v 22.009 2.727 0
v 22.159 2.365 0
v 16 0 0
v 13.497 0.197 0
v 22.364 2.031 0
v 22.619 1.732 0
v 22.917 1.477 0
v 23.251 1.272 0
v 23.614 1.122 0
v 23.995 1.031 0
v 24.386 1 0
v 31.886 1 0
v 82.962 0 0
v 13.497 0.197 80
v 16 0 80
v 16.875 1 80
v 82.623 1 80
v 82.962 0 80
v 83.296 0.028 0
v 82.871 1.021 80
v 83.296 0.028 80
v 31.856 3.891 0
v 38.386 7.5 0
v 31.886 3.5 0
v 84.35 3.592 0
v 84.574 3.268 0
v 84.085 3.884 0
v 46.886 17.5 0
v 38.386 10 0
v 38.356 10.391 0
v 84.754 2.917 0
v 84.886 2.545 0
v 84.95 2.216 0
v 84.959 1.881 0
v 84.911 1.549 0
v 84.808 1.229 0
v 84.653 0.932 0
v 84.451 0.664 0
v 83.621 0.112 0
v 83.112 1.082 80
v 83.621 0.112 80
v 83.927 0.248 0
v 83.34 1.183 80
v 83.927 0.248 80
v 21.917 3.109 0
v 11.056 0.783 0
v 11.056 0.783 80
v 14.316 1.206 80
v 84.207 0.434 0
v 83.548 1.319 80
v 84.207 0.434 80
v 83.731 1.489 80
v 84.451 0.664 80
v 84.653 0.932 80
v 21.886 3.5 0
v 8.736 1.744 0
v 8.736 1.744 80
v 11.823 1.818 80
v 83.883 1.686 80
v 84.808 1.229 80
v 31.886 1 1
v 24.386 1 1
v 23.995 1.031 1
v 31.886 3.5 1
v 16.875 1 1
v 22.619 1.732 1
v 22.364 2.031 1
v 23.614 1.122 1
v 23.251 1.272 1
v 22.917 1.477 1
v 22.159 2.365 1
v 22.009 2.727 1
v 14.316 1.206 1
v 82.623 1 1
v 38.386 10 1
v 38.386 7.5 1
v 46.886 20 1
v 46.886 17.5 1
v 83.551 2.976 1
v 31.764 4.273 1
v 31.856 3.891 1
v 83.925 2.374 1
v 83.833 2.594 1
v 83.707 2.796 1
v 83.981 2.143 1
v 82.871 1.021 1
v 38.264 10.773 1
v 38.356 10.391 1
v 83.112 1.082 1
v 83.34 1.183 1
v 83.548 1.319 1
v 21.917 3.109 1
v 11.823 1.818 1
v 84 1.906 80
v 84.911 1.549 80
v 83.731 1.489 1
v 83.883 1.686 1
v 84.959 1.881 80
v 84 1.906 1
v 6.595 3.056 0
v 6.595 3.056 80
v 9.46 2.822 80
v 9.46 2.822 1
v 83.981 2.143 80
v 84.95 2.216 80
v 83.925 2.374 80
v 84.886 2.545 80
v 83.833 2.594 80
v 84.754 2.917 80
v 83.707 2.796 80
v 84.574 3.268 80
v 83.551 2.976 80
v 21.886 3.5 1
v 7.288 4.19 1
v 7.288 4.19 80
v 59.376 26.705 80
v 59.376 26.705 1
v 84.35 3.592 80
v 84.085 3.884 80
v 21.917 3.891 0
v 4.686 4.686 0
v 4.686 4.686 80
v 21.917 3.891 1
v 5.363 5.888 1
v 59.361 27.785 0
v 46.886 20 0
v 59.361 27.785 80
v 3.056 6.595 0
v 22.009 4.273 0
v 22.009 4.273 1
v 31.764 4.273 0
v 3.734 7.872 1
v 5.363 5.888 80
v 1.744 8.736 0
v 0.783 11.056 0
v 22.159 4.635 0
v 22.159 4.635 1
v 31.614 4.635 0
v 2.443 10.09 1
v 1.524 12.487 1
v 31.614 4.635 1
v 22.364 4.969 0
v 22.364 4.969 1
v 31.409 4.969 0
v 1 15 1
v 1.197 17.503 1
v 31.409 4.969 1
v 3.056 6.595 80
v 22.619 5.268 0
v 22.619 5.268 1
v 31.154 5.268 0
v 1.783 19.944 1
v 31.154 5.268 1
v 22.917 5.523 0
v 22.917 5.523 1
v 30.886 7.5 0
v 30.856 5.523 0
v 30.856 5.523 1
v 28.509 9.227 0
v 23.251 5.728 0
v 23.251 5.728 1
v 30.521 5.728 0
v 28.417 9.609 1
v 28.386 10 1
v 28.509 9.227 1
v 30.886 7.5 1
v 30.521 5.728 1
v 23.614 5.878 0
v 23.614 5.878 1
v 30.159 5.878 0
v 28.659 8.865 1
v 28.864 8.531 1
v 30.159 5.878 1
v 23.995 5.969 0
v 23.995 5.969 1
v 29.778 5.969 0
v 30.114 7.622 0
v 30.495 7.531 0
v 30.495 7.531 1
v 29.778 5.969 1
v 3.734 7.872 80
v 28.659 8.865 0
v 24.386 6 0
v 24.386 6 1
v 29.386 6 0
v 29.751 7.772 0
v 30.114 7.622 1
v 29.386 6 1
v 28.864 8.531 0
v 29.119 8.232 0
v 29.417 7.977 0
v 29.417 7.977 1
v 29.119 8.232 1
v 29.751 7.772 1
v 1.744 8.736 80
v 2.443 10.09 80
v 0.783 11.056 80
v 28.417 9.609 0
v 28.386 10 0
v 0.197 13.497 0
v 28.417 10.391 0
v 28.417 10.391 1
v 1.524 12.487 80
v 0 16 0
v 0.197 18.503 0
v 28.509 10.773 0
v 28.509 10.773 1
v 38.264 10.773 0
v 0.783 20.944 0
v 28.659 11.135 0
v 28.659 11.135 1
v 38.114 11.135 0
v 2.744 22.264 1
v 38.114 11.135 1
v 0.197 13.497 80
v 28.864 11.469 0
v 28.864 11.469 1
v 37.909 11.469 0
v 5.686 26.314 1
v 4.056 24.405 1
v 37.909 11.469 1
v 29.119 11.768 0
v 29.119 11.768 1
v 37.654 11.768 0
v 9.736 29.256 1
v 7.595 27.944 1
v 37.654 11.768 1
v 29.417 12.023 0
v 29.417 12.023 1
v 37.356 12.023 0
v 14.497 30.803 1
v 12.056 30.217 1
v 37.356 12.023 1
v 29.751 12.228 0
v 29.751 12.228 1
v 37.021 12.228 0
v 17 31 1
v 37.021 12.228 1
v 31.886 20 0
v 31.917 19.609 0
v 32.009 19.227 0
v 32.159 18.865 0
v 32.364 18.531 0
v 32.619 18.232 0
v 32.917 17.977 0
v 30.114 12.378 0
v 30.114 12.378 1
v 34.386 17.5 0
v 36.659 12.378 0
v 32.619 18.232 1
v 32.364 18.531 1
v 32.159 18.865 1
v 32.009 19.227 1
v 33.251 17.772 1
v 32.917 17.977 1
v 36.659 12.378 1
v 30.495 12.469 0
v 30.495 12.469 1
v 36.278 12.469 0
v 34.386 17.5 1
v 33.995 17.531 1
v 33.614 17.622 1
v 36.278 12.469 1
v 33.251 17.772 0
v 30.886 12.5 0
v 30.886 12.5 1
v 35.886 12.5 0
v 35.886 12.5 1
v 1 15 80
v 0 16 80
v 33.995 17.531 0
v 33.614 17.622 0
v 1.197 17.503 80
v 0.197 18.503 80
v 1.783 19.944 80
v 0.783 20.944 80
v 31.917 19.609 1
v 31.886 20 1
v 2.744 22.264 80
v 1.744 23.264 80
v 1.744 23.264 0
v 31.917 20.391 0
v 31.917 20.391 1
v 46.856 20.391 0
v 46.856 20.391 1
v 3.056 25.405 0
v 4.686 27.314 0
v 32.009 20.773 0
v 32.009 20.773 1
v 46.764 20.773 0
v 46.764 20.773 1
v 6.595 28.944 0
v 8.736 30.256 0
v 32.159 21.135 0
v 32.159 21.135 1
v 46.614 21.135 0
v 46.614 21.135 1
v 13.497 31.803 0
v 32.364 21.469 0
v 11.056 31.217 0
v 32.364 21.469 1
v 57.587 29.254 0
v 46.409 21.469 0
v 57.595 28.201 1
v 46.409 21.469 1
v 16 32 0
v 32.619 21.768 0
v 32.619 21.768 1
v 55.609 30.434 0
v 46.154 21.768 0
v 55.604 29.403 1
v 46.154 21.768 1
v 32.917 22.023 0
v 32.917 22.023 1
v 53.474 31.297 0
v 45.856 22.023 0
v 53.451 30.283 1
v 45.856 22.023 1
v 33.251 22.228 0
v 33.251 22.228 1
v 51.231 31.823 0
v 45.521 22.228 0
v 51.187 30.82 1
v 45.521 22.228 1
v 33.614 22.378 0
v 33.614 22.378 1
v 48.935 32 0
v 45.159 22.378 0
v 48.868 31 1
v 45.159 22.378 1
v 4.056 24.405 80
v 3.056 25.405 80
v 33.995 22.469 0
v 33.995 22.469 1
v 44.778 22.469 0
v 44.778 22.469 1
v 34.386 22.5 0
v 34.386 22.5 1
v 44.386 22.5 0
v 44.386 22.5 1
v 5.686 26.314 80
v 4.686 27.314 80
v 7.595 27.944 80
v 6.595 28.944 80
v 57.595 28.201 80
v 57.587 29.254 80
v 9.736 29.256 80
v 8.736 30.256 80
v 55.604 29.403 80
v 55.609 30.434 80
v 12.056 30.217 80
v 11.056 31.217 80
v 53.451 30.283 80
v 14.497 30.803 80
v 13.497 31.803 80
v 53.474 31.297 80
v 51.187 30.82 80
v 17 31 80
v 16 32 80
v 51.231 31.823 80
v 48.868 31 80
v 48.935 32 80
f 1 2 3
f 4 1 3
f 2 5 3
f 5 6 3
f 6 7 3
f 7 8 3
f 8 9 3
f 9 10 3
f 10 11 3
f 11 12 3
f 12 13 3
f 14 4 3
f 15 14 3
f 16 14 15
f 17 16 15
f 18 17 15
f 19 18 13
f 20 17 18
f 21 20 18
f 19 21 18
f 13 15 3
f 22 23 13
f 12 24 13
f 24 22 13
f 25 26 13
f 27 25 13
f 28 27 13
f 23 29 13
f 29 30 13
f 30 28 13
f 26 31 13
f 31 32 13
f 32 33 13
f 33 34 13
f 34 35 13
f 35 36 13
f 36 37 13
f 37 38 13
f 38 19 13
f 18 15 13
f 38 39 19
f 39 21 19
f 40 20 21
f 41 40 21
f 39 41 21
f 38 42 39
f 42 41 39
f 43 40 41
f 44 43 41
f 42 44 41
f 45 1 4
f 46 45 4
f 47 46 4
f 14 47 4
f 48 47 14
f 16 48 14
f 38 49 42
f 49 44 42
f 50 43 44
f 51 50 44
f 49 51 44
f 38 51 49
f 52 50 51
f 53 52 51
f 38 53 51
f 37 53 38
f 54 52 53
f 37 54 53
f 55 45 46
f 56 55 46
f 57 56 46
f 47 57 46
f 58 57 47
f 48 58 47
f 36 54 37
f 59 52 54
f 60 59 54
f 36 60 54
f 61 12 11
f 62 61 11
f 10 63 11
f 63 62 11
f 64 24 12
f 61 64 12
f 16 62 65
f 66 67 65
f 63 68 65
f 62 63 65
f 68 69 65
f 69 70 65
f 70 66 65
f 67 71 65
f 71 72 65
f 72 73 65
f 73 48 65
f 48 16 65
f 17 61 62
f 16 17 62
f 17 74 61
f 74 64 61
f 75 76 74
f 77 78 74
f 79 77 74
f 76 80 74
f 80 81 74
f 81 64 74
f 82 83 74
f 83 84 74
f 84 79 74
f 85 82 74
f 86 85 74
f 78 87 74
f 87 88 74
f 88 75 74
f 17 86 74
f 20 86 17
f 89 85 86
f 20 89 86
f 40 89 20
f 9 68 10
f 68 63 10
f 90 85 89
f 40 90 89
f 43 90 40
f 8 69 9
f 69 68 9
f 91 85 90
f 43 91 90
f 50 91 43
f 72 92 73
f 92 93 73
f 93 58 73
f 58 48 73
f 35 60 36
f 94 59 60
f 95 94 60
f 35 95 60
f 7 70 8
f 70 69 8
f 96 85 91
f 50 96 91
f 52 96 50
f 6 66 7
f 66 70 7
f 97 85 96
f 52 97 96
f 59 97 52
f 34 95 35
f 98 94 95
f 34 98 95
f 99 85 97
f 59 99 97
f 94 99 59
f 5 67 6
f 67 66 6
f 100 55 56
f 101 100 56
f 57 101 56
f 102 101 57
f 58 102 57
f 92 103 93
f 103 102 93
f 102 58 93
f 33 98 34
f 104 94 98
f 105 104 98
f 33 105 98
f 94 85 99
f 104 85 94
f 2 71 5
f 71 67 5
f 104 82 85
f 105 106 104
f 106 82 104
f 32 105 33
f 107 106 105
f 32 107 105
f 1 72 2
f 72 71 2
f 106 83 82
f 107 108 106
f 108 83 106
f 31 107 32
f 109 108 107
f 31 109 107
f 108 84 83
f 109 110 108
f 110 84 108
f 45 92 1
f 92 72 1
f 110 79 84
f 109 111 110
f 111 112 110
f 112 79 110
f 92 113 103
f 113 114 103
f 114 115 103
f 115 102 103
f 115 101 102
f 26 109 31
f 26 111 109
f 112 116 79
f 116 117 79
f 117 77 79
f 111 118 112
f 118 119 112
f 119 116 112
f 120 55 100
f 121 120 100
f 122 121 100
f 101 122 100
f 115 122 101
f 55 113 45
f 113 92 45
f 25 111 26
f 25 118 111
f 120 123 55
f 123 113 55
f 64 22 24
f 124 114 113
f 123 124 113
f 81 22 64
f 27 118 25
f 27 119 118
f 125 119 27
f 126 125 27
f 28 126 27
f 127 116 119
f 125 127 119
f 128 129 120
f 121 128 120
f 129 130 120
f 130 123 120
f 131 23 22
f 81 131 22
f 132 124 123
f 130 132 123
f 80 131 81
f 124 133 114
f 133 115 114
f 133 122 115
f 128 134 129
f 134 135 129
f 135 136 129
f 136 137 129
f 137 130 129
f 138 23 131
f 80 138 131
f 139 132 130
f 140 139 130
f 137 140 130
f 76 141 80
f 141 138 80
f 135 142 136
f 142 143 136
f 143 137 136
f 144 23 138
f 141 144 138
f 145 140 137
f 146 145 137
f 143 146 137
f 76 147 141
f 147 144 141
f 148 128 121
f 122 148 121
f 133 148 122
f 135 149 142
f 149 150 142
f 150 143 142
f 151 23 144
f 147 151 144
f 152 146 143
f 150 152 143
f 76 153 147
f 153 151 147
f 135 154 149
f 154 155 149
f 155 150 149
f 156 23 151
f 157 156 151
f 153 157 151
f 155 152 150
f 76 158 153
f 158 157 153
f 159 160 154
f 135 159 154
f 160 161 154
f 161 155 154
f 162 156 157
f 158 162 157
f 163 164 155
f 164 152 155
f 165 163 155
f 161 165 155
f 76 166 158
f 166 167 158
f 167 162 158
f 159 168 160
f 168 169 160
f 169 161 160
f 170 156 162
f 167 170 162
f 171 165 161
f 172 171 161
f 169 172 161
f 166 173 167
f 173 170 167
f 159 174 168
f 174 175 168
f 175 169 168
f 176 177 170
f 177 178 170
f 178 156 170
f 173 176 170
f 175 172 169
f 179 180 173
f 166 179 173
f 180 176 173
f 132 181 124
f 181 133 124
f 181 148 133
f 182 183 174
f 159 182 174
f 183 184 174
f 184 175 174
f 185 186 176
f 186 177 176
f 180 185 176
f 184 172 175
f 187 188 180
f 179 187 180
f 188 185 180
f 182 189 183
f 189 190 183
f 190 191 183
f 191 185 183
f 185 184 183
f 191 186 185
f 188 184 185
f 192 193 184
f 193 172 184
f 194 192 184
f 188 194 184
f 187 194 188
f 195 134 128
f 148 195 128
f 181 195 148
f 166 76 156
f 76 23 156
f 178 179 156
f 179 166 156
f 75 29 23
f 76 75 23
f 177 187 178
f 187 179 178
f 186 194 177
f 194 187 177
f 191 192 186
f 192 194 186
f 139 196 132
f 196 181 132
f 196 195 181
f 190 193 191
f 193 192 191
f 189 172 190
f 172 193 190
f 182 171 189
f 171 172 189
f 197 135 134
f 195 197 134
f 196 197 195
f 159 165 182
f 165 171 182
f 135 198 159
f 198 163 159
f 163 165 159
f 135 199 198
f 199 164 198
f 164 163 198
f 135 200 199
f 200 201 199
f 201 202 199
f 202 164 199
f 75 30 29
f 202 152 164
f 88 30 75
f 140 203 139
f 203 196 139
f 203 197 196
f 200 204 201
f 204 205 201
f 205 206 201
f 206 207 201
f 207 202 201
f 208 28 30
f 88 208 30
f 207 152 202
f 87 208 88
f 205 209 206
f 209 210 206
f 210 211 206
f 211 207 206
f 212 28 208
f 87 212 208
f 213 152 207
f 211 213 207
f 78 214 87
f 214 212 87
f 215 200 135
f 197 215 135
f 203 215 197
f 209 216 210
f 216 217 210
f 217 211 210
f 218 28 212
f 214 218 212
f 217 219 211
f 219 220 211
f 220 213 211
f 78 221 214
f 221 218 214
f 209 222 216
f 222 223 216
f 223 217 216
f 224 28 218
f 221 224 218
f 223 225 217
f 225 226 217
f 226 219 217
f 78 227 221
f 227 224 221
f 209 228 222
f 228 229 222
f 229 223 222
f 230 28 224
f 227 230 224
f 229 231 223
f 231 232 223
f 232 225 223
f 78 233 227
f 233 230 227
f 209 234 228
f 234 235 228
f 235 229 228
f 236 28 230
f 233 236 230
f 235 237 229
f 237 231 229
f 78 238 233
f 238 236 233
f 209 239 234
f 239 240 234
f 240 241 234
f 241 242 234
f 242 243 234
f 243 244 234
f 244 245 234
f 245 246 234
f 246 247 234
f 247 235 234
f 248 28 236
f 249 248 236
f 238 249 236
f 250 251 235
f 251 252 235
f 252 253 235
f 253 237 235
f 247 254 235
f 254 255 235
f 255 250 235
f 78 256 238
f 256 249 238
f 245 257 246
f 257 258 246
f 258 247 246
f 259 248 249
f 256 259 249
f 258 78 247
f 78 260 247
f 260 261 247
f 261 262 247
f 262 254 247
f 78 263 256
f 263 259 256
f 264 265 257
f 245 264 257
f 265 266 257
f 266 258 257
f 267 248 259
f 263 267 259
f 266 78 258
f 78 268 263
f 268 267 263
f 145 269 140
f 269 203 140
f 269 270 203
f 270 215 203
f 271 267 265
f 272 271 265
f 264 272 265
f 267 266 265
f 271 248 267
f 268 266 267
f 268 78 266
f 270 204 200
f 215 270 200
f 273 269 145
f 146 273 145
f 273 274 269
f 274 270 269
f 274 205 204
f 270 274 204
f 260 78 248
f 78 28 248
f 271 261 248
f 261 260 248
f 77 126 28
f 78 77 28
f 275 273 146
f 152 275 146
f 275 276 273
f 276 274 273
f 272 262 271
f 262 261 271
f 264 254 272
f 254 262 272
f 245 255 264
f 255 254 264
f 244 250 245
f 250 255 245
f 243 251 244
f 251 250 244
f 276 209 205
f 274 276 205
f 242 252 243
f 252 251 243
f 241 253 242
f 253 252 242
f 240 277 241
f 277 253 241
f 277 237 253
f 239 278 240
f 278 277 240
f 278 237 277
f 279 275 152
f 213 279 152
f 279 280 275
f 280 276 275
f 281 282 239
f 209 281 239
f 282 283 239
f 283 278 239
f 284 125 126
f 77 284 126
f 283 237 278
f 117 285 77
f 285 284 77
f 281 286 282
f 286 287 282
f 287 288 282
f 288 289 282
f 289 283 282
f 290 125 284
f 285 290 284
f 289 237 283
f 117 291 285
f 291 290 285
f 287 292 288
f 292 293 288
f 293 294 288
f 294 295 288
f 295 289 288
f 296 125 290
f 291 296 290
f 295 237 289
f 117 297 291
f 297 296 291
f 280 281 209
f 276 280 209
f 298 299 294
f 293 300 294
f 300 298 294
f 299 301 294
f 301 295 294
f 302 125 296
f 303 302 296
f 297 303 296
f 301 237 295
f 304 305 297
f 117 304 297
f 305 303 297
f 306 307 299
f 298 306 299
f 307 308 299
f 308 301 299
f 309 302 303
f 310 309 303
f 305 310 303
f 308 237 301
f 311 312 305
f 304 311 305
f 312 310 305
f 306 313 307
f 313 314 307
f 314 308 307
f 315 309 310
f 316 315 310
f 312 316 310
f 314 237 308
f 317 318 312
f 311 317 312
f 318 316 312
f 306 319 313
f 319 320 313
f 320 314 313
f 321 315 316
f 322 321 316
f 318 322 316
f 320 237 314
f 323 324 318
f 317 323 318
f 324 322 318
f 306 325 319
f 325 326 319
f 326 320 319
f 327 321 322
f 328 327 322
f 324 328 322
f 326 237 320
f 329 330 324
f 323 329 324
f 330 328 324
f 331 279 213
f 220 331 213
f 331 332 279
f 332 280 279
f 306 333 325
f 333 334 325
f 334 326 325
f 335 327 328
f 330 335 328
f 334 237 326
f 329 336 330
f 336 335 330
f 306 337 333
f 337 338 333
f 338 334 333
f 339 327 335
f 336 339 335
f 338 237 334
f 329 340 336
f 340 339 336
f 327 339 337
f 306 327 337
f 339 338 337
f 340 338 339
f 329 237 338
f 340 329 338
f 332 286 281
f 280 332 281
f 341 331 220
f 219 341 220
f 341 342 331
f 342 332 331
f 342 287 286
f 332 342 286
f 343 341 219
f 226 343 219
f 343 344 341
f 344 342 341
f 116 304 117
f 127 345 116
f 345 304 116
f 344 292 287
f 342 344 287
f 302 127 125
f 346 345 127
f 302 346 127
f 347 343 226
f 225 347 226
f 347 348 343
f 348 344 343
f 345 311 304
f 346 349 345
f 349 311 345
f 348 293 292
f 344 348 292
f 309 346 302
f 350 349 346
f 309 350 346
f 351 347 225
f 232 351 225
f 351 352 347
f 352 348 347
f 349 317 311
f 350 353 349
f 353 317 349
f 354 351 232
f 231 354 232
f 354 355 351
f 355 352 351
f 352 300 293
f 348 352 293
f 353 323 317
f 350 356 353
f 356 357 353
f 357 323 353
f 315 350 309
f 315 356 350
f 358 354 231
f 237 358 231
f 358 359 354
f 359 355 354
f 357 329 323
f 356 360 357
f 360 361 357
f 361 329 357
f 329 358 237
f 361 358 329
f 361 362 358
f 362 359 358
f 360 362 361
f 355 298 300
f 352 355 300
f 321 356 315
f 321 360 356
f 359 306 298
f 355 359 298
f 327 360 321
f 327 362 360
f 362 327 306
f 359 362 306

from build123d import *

# Parameters (mm, degrees)
SKETCH1_W               = 85
SKETCH1_H               = 32
BOSS_EXTRUDE1_DEPTH     = 80
CUT_EXTRUDE7_DEPTH      = 122.033053337
CUT_EXTRUDE7_DEPTH_BACK = 80
CUT_EXTRUDE8_DEPTH      = 79
FILLET11_R              = 16
FILLET12_R              = 16
FILLET13_R              = 16
FILLET14_R              = 16
FILLET15_R              = 15
FILLET16_R              = 15
FILLET17_R              = 1.5
FILLET18_R              = 1.5
FILLET21_R              = 3
FILLET22_R              = 2
SKETCH18_W              = 15
SKETCH18_H              = 5
CUT_EXTRUDE14_DEPTH     = 79
SKETCH17_W              = 10
SKETCH17_H              = 5
CUT_EXTRUDE15_DEPTH     = 79
SKETCH16_W              = 10
SKETCH16_H              = 5
CUT_EXTRUDE16_DEPTH     = 79
FILLET29_R              = 2.5
FILLET30_R              = 2.5
FILLET31_R              = 2.5
FILLET32_R              = 2.5
FILLET33_R              = 2.5
FILLET34_R              = 2.5
FILLET35_R              = 2.5
FILLET36_R              = 2.5
FILLET37_R              = 2.5


# Some blends are built 0.0001 mm under size
with BuildPart() as part:
    # Sketch1 → Boss-Extrude1 (new body)
    with BuildSketch(Plane.XY):
        with Locations((42.5, 16)):
            Rectangle(SKETCH1_W, SKETCH1_H)
    extrude(amount=BOSS_EXTRUDE1_DEPTH)

    # Sketch3 → Cut-Extrude7 (cut, two sides: drawn at the far end of the back side and taken through both)
    with BuildSketch(Plane.XY.offset(80).offset(-CUT_EXTRUDE7_DEPTH_BACK)):
        Polygon((221.335887988, -128.791358388), (85, 3), (55, 32), (-81.335887988, 163.791358388), (182.246828788, 436.463134363), (484.918604763, 143.880417587), align=None)
    extrude(amount=CUT_EXTRUDE7_DEPTH + CUT_EXTRUDE7_DEPTH_BACK, mode=Mode.SUBTRACT)

    # Sketch6 → Cut-Extrude8 (cut)
    with BuildSketch(Plane.XY.offset(80)):
        Polygon((1, 31), (1, 1), (84, 1), (84, 2.535105728), (55, 31), align=None)
    extrude(amount=-CUT_EXTRUDE8_DEPTH, mode=Mode.SUBTRACT)

    # Fillet11
    fillet11_edges = [part.edges().sort_by_distance(p)[0] for p in [
        (1, 31, 40.5),
    ]]
    fillet(fillet11_edges, radius=FILLET11_R)

    # Fillet12
    # the kernel refuses this fillet: 16 mm, written as the material it adds along each edge
    with BuildSketch(Plane(origin=(1, 1, 80), x_dir=(0, 1, 0), z_dir=(0, 0, -1))) as fillet12_piece_1:
        with BuildLine():
            CenterArc((16, 15.874507866), FILLET12_R, 180, 82.819244219)
            Line((0, 15.874507866), (-0.32, 15.874507866))
            Line((-0.32, 15.874507866), (-0.32, 0))
            Line((-0.32, 0), (0, -0.32))
            ThreePointArc((0, -0.32), (7, -0.32), (13.96, -0.317490157))
            Line((13.96, -0.317490157), (14, 0))
        make_face()
    extrude(amount=79)

    # Fillet13
    fillet13_edges = [part.edges().sort_by_distance(p)[0] for p in [
        (0, 32, 40),
    ]]
    fillet(fillet13_edges, radius=FILLET13_R)

    # Fillet14
    fillet14_edges = [part.edges().sort_by_distance(p)[0] for p in [
        (0, 0, 40),
    ]]
    fillet(fillet14_edges, radius=FILLET14_R - 0.0001)  # a hair under: the kernel refuses the full size

    # Fillet15
    fillet15_edges = [part.edges().sort_by_distance(p)[0] for p in [
        (55, 31, 40.5),
    ]]
    fillet(fillet15_edges, radius=FILLET15_R)

    # Fillet16
    fillet16_edges = [part.edges().sort_by_distance(p)[0] for p in [
        (55, 32, 40),
    ]]
    fillet(fillet16_edges, radius=FILLET16_R)

    # Fillet17
    fillet17_edges = [part.edges().sort_by_distance(p)[0] for p in [
        (84, 2.535105728, 40.5),
    ]]
    fillet(fillet17_edges, radius=FILLET17_R)

    # Fillet18
    # the kernel refuses this fillet: 1.5 mm, written as the material it adds along each edge
    with BuildSketch(Plane(origin=(84, 1, 80), x_dir=(0, 1, 0), z_dir=(0, 0, -1))) as fillet18_piece_1:
        with BuildLine():
            CenterArc((1.5, -1.377197843), FILLET18_R, 113.345512124, 66.654487876)
            Line((0, -1.377197843), (-0.03, -1.377197843))
            Line((-0.03, -1.377197843), (-0.03, 0))
            Line((-0.03, 0), (0, 0.03))
            ThreePointArc((0, 0.03), (0.4527938, 0.03), (0.893699352, 0.027543957))
            Line((0.893699352, 0.027543957), (0.9055876, 0))
        make_face()
    extrude(amount=79)

    # Fillet21
    fillet21_edges = [part.edges().sort_by_distance(p)[0] for p in [
        (85, 3, 40),
    ]]
    fillet(fillet21_edges, radius=FILLET21_R)

    # Fillet22
    fillet22_edges = [part.edges().sort_by_distance(p)[0] for p in [
        (85, 0, 40),
    ]]
    fillet(fillet22_edges, radius=FILLET22_R)

    # Sketch18 → Cut-Extrude14 (cut)
    with BuildSketch(Plane(origin=(0, 0, 0), x_dir=(-1, 0, 0), z_dir=(0, 0, -1))):
        with Locations((-39.386442529, 20)):
            Rectangle(SKETCH18_W, SKETCH18_H)
    extrude(amount=-CUT_EXTRUDE14_DEPTH, mode=Mode.SUBTRACT)

    # Sketch17 → Cut-Extrude15 (cut)
    with BuildSketch(Plane(origin=(0, 0, 0), x_dir=(-1, 0, 0), z_dir=(0, 0, -1))):
        with Locations((-33.386442529, 10)):
            Rectangle(SKETCH17_W, SKETCH17_H)
    extrude(amount=-CUT_EXTRUDE15_DEPTH, mode=Mode.SUBTRACT)

    # Sketch16 → Cut-Extrude16 (cut)
    with BuildSketch(Plane(origin=(0, 0, 0), x_dir=(-1, 0, 0), z_dir=(0, 0, -1))):
        with Locations((-26.886442529, 3.5)):
            Rectangle(SKETCH16_W, SKETCH16_H)
    extrude(amount=-CUT_EXTRUDE16_DEPTH, mode=Mode.SUBTRACT)

    # Fillet29
    fillet29_edges = [part.edges().sort_by_distance(p)[0] for p in [
        (31.886442529, 22.5, 0.5),
    ]]
    fillet(fillet29_edges, radius=FILLET29_R)

    # Fillet30
    fillet30_edges = [part.edges().sort_by_distance(p)[0] for p in [
        (31.886442529, 17.5, 0.5),
    ]]
    fillet(fillet30_edges, radius=FILLET30_R - 0.0001)  # a hair under: the kernel refuses the full size

    # Fillet31
    fillet31_edges = [part.edges().sort_by_distance(p)[0] for p in [
        (46.886442529, 22.5, 0.5),
    ]]
    fillet(fillet31_edges, radius=FILLET31_R)

    # Fillet32
    fillet32_edges = [part.edges().sort_by_distance(p)[0] for p in [
        (28.386442529, 12.5, 0.5),
    ]]
    fillet(fillet32_edges, radius=FILLET32_R)

    # Fillet33
    fillet33_edges = [part.edges().sort_by_distance(p)[0] for p in [
        (28.386442529, 7.5, 0.5),
    ]]
    fillet(fillet33_edges, radius=FILLET33_R - 0.0001)  # a hair under: the kernel refuses the full size

    # Fillet34
    fillet34_edges = [part.edges().sort_by_distance(p)[0] for p in [
        (38.386442529, 12.5, 0.5),
    ]]
    fillet(fillet34_edges, radius=FILLET34_R)

    # Fillet35
    fillet35_edges = [part.edges().sort_by_distance(p)[0] for p in [
        (21.886442529, 6, 0.5),
    ]]
    fillet(fillet35_edges, radius=FILLET35_R)

    # Fillet36
    fillet36_edges = [part.edges().sort_by_distance(p)[0] for p in [
        (21.886442529, 1, 0.5),
    ]]
    fillet(fillet36_edges, radius=FILLET36_R - 0.0001)  # a hair under: the kernel refuses the full size

    # Fillet37
    fillet37_edges = [part.edges().sort_by_distance(p)[0] for p in [
        (31.886442529, 6, 0.5),
    ]]
    fillet(fillet37_edges, radius=FILLET37_R)


solid = part.part
